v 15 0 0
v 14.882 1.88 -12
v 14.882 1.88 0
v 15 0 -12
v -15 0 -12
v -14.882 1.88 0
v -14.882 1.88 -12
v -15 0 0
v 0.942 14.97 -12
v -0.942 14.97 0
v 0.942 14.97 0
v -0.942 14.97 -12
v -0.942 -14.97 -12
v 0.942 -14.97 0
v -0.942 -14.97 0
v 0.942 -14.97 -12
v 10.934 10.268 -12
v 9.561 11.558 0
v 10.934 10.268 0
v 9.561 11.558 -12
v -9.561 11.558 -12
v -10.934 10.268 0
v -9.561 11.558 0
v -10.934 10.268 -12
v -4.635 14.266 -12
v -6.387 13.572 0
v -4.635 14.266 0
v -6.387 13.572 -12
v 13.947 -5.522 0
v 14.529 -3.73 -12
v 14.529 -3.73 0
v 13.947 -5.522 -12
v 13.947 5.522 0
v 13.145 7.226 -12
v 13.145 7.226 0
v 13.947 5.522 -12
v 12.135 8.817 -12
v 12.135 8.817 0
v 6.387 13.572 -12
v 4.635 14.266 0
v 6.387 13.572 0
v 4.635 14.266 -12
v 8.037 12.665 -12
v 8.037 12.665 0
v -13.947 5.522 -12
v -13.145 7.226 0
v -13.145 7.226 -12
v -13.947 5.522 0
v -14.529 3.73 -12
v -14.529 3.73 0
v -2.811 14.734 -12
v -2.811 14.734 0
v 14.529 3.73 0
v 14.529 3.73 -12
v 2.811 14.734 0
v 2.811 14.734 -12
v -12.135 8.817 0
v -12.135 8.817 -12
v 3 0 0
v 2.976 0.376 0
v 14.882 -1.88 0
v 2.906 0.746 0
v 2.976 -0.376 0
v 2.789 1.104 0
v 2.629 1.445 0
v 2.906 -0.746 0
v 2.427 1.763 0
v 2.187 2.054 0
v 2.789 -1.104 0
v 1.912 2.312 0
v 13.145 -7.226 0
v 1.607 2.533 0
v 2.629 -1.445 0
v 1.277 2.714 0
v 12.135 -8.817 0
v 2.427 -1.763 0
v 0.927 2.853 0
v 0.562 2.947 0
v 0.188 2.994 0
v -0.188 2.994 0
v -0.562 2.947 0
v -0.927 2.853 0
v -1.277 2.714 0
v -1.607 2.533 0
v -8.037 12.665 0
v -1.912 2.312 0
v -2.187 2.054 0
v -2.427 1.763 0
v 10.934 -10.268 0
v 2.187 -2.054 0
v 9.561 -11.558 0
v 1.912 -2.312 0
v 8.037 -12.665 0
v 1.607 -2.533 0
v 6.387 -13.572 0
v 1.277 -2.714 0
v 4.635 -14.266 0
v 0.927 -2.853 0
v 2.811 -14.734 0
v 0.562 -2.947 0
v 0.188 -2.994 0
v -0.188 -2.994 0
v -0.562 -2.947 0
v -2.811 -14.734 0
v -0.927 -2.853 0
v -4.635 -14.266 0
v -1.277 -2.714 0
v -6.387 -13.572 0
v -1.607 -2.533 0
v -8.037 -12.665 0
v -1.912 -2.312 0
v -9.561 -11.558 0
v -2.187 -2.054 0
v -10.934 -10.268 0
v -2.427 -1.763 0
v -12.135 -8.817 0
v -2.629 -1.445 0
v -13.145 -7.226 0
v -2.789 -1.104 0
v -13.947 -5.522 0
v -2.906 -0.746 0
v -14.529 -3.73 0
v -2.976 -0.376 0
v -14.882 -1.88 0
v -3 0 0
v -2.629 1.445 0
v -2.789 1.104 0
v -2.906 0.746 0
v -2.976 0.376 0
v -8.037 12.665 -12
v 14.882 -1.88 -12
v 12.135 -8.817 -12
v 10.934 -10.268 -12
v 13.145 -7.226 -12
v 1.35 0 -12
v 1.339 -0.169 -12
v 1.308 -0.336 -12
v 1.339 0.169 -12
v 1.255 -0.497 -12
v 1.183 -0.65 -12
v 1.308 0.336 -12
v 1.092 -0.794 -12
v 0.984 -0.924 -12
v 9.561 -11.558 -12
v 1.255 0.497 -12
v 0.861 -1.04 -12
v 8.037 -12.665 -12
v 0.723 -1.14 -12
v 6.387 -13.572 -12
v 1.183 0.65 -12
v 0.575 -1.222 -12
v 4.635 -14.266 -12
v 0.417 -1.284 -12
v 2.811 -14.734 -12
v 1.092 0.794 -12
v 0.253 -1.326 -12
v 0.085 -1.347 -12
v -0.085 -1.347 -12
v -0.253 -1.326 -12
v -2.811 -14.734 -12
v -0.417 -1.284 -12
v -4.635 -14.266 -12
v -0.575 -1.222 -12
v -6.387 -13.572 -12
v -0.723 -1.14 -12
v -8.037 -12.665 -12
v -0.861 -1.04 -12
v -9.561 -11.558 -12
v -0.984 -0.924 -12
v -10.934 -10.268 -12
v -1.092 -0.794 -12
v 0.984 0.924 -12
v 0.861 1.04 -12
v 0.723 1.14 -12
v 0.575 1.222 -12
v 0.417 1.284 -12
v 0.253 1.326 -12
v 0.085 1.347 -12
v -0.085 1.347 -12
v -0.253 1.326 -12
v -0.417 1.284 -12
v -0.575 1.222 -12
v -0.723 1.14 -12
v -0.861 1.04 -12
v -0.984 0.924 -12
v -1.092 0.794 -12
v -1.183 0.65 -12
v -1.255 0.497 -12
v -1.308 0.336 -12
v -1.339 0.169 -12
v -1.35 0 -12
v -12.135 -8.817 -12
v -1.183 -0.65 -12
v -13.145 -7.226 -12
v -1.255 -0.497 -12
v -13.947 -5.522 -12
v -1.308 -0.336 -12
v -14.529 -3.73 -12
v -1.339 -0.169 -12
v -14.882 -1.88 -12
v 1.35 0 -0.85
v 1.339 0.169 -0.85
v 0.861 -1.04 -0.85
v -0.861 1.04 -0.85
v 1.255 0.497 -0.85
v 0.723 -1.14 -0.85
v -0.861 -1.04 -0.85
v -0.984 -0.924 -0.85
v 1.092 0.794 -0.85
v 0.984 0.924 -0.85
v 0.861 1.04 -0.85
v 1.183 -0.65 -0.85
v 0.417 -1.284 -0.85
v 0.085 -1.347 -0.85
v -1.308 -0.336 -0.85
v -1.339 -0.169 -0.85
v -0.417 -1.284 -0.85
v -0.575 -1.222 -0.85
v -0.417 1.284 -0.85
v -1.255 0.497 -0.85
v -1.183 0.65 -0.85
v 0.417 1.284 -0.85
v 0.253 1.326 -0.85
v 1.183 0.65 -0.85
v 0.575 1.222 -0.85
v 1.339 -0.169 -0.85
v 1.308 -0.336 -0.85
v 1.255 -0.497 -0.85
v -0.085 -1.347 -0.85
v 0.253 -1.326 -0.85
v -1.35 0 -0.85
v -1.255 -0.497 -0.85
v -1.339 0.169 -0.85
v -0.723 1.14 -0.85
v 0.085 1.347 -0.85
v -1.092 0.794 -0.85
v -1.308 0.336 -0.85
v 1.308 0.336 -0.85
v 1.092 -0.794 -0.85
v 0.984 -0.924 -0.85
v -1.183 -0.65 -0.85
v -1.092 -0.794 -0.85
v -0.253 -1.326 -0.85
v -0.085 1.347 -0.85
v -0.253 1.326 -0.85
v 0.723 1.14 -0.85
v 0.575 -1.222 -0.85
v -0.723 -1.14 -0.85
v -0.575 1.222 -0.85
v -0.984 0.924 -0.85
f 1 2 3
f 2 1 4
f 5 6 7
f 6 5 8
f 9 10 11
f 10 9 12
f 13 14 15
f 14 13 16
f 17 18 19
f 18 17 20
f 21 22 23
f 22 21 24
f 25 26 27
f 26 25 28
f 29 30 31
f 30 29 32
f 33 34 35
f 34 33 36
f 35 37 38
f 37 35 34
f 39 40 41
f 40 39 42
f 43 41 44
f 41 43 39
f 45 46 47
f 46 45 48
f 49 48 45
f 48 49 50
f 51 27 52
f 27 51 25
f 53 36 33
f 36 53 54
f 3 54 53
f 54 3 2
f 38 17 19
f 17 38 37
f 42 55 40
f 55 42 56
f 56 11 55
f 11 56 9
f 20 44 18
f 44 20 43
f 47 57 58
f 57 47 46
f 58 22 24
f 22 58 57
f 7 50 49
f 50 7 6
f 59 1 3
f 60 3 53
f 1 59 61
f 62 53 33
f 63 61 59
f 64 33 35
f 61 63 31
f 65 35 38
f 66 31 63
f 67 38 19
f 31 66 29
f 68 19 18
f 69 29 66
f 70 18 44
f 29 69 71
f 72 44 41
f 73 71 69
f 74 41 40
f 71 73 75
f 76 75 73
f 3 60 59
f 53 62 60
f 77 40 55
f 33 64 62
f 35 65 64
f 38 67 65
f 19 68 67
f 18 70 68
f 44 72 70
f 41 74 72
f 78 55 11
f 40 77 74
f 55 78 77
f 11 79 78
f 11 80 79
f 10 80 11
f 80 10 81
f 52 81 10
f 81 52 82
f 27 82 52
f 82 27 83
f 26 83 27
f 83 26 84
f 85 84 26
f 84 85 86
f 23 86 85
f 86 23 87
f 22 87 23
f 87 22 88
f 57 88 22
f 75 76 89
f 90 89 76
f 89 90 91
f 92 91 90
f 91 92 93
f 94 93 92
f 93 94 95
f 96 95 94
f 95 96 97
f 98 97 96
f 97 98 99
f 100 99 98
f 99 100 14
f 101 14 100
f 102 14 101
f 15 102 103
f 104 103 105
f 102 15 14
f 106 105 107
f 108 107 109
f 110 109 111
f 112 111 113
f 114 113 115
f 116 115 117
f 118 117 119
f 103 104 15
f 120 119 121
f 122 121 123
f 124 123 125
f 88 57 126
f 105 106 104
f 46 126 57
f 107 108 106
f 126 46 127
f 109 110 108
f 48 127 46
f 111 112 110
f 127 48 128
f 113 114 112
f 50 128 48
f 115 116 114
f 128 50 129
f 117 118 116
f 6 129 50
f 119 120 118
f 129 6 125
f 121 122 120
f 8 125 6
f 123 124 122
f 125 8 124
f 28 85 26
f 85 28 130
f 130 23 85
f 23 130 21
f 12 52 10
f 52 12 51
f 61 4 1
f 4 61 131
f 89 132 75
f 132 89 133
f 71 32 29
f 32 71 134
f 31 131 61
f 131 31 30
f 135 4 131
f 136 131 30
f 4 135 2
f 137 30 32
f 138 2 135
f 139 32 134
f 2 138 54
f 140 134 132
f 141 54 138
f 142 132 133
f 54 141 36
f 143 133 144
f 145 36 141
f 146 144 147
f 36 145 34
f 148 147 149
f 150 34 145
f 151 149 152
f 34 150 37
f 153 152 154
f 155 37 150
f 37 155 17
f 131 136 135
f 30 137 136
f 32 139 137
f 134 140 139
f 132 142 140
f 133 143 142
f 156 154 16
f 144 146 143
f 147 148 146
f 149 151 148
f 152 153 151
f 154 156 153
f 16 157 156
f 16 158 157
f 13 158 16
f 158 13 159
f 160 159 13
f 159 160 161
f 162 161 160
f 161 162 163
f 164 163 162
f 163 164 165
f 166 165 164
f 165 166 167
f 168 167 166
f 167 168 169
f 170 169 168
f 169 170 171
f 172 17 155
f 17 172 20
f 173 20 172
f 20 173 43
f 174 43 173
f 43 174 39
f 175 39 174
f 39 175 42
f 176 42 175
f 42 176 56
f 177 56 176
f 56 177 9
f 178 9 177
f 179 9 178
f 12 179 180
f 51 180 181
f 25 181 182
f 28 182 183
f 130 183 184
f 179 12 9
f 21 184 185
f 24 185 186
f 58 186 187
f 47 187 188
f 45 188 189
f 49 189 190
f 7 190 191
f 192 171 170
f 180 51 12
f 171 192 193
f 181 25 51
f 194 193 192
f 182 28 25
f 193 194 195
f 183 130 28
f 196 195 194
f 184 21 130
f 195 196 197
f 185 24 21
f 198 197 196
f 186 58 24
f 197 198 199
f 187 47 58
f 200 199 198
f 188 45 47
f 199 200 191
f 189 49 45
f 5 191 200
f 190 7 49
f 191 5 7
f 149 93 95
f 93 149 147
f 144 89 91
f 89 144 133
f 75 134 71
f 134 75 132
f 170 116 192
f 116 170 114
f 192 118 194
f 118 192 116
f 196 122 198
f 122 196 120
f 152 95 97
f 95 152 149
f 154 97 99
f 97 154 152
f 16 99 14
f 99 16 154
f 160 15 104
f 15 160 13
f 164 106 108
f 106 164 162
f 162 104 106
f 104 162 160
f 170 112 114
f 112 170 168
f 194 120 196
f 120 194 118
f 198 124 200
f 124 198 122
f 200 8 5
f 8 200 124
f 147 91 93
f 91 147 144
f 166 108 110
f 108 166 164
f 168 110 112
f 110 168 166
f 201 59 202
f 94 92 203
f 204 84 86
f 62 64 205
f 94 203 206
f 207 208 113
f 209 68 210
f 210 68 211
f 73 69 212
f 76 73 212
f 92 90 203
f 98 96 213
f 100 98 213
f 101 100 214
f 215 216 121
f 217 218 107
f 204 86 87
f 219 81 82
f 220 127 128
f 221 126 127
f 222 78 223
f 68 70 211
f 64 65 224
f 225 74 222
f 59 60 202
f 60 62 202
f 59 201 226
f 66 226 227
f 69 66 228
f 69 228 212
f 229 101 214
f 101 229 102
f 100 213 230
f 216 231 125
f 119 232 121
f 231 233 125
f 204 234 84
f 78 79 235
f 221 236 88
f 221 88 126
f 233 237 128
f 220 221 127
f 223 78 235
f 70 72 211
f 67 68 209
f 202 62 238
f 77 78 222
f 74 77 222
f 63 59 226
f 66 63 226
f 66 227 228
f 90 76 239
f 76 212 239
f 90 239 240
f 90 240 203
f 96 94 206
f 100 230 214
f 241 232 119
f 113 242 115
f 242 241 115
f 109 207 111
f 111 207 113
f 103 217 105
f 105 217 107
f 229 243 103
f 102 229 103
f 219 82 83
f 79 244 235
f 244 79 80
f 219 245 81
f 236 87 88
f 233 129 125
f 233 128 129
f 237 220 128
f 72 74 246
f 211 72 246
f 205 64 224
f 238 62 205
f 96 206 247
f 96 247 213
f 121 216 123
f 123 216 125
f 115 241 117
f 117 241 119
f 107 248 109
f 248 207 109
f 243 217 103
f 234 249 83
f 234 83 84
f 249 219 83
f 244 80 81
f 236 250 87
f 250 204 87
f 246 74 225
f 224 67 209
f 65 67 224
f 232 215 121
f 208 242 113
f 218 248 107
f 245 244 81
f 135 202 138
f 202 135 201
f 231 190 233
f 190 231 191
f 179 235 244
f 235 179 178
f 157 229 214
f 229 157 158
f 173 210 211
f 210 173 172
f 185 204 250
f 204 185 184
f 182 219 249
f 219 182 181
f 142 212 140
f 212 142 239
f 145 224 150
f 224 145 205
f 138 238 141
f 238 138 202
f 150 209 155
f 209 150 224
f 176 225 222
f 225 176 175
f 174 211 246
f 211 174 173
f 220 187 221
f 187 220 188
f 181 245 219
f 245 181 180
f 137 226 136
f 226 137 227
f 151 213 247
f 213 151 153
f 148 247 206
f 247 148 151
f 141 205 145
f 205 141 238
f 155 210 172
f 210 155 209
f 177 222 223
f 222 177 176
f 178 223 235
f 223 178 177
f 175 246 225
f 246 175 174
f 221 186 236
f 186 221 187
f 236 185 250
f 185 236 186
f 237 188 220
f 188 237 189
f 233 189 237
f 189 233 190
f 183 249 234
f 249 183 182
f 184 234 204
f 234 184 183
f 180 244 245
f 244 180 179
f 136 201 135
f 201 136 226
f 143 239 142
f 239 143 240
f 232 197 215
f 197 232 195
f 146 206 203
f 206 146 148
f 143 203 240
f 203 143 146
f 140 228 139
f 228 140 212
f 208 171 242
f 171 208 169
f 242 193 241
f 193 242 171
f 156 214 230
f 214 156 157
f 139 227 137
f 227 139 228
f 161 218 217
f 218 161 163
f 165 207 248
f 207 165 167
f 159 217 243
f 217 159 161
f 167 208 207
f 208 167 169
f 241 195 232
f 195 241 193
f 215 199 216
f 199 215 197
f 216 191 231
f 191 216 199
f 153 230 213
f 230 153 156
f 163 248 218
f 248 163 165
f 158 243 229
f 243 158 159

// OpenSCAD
$fn = 50;


difference() {
	union() {
		translate(v = [0, 0, -12.0000000000]) {
			cylinder(h = 12, r = 15.0000000000);
		}
		translate(v = [0, 0, -12.0000000000]) {
			cylinder(h = 12, r = 2.8750000000);
		}
	}
	union() {
		translate(v = [0, 0, 0]) {
			rotate(a = [0, 0, 0]) {
				difference() {
					union() {
						translate(v = [0, 0, -12.0000000000]) {
							cylinder(h = 12, r = 1.0000000000);
						}
						translate(v = [0, 0, -0.8500000000]) {
							cylinder(h = 0.8500000000, r1 = 1.3500000000, r2 = 3.0000000000);
						}
						translate(v = [0, 0, -12.0000000000]) {
							cylinder(h = 12, r = 1.3500000000);
						}
						translate(v = [0, 0, -12.0000000000]) {
							cylinder(h = 12, r = 1.0000000000);
						}
					}
					union();
				}
			}
		}
	}
}
